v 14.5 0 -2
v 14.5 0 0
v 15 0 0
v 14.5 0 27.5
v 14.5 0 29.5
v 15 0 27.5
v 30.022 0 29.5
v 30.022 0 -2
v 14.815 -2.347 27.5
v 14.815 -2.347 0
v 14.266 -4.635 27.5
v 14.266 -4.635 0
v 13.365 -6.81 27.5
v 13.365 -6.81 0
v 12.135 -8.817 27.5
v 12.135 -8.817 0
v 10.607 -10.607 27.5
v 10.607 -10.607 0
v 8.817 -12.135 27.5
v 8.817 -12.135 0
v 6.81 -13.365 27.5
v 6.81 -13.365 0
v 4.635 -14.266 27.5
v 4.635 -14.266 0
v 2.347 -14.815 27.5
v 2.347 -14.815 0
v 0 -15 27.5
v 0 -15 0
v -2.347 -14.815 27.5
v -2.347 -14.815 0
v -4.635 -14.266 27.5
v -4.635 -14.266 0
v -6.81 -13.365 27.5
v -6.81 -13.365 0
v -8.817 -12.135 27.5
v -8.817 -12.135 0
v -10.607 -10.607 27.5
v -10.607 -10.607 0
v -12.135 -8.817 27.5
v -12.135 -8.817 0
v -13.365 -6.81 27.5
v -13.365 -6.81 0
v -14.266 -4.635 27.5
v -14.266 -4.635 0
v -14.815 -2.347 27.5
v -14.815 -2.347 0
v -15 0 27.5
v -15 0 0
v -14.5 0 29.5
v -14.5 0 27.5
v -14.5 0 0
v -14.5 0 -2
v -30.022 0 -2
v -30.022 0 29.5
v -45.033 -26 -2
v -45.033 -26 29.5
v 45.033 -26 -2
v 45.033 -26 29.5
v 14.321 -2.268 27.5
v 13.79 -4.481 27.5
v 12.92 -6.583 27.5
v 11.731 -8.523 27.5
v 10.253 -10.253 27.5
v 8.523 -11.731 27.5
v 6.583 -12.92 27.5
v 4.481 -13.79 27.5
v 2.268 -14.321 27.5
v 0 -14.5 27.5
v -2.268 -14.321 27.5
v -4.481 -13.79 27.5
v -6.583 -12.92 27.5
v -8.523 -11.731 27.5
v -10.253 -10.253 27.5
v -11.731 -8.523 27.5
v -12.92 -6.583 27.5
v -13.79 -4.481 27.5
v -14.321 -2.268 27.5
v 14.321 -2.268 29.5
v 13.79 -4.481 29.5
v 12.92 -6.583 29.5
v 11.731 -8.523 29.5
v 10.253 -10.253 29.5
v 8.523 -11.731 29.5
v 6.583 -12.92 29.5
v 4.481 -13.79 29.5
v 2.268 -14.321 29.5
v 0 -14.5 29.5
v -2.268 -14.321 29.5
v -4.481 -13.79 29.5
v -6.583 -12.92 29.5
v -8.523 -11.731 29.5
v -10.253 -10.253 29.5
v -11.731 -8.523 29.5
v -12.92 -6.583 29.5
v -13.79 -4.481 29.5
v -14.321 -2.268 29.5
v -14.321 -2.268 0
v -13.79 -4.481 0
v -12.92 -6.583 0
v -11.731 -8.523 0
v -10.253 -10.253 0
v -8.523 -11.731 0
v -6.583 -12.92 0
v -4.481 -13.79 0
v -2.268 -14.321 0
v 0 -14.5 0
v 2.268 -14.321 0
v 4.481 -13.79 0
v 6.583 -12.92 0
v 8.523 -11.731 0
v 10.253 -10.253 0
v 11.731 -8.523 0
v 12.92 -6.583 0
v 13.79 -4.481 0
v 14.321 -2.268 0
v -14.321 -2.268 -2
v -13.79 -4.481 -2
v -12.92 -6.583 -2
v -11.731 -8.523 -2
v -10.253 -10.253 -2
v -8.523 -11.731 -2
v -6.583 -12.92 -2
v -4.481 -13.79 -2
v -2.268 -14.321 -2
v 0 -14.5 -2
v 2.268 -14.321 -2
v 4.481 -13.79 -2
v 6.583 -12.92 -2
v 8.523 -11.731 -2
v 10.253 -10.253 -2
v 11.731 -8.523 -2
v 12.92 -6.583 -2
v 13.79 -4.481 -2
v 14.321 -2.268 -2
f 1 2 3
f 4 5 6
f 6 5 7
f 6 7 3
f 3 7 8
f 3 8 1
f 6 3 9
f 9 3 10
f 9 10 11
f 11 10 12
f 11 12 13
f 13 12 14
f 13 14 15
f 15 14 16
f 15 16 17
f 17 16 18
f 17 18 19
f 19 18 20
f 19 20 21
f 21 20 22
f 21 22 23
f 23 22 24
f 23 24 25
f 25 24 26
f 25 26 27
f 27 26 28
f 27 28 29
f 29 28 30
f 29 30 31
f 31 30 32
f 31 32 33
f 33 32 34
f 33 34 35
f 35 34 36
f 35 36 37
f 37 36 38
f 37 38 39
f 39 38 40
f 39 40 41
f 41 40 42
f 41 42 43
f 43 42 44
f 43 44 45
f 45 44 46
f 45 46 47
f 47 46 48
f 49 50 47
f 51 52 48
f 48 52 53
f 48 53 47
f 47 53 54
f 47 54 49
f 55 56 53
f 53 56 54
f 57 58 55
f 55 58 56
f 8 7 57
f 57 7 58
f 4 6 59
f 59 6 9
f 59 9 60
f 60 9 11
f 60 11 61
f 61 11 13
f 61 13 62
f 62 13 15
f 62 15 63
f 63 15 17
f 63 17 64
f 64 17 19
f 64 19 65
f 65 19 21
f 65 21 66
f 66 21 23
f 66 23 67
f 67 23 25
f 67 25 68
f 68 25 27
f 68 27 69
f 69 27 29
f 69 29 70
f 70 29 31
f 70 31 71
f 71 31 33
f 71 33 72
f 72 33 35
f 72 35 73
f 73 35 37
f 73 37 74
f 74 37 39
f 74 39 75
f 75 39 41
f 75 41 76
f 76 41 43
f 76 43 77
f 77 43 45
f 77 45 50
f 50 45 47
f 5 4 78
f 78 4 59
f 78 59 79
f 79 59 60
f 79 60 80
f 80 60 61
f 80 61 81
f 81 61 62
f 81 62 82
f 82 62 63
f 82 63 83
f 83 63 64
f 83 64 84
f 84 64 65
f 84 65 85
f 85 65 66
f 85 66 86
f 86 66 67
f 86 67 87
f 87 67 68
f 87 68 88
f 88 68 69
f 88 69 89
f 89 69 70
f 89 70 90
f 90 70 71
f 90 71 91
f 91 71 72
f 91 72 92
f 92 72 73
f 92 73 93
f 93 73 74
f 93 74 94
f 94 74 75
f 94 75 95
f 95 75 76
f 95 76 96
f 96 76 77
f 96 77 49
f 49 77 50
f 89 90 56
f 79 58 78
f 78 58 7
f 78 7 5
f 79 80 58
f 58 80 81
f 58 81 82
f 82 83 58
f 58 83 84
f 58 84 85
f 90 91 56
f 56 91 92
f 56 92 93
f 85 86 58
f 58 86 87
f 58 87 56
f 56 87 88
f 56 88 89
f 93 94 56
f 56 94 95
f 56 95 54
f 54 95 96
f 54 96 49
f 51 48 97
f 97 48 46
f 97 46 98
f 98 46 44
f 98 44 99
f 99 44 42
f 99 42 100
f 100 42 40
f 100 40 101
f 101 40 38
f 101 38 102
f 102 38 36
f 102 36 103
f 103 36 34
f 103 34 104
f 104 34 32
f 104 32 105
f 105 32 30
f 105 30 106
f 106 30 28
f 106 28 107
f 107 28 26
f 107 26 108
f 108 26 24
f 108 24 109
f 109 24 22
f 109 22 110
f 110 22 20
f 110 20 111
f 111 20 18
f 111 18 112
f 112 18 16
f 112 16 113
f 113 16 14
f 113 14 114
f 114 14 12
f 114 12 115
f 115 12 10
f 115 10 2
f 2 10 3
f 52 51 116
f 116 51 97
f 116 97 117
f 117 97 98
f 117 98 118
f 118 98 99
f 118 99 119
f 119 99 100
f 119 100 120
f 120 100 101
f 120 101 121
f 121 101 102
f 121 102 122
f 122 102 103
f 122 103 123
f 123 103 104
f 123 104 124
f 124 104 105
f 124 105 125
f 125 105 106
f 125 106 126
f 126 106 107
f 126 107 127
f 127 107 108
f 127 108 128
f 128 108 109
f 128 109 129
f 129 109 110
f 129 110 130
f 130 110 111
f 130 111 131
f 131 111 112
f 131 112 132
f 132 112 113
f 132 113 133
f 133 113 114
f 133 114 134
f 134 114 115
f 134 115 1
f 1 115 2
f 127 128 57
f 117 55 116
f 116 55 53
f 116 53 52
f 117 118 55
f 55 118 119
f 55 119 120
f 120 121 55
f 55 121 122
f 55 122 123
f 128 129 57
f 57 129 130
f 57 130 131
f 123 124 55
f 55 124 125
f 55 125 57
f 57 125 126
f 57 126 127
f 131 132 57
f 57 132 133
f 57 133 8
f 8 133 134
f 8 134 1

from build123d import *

# Parameters (mm, degrees)
BOSS_EXTRUDE1_DEPTH = 27.5
BOSS_EXTRUDE2_DEPTH = 2
BOSS_EXTRUDE3_DEPTH = 2


with BuildPart() as part:
    # Frame → Boss-Extrude1 (new body)
    with BuildSketch(Plane.XY):
        with BuildLine():
            Line((-45.033320997, -26), (45.033320997, -26))
            Line((45.033320997, -26), (30.022213998, 0))
            Line((30.022213998, 0), (18, 0))
            ThreePointArc((18, 0), (0, -18), (-18, 0))
            Line((-18, 0), (-30.022213998, 0))
            Line((-30.022213998, 0), (-45.033320997, -26))
        make_face()
        with BuildLine():
            ThreePointArc((-18, 0), (0, -18), (18, 0))
            Line((18, 0), (15, 0))
            ThreePointArc((15, 0), (0, -15), (-15, 0))
            Line((-15, 0), (-18, 0))
        make_face()
    extrude(amount=BOSS_EXTRUDE1_DEPTH)

    # lip → Boss-Extrude2 (add)
    with BuildSketch(Plane.XY.offset(27.5)):
        with BuildLine():
            Line((45.033320997, -26), (30.022213998, 0))
            Line((30.022213998, 0), (15, 0))
            ThreePointArc((15, 0), (0, -15), (-15, 0))
            Line((-15, 0), (-30.022213998, 0))
            Line((-30.022213998, 0), (-45.033320997, -26))
            Line((-45.033320997, -26), (45.033320997, -26))
        make_face()
        with BuildLine():
            ThreePointArc((14.5, 0), (0, -14.5), (-14.5, 0))
            Line((-14.5, 0), (-15, 0))
            ThreePointArc((-15, 0), (0, -15), (15, 0))
            Line((15, 0), (14.5, 0))
        make_face()
    extrude(amount=BOSS_EXTRUDE2_DEPTH)

    # lip2 → Boss-Extrude3 (add)
    with BuildSketch(Plane(origin=(0, 0, 0), x_dir=(-1, 0, 0), z_dir=(0, 0, -1))):
        with BuildLine():
            ThreePointArc((15, 0), (0, -15), (-15, 0))
            Line((-15, 0), (-30.022213998, 0))
            Line((-30.022213998, 0), (-45.033320997, -26))
            Line((-45.033320997, -26), (45.033320997, -26))
            Line((45.033320997, -26), (30.022213998, 0))
            Line((30.022213998, 0), (15, 0))
        make_face()
        with BuildLine():
            Line((-14.5, 0), (-15, 0))
            ThreePointArc((-15, 0), (0, -15), (15, 0))
            Line((15, 0), (14.5, 0))
            ThreePointArc((14.5, 0), (0, -14.5), (-14.5, 0))
        make_face()
    extrude(amount=BOSS_EXTRUDE3_DEPTH)


solid = part.part
